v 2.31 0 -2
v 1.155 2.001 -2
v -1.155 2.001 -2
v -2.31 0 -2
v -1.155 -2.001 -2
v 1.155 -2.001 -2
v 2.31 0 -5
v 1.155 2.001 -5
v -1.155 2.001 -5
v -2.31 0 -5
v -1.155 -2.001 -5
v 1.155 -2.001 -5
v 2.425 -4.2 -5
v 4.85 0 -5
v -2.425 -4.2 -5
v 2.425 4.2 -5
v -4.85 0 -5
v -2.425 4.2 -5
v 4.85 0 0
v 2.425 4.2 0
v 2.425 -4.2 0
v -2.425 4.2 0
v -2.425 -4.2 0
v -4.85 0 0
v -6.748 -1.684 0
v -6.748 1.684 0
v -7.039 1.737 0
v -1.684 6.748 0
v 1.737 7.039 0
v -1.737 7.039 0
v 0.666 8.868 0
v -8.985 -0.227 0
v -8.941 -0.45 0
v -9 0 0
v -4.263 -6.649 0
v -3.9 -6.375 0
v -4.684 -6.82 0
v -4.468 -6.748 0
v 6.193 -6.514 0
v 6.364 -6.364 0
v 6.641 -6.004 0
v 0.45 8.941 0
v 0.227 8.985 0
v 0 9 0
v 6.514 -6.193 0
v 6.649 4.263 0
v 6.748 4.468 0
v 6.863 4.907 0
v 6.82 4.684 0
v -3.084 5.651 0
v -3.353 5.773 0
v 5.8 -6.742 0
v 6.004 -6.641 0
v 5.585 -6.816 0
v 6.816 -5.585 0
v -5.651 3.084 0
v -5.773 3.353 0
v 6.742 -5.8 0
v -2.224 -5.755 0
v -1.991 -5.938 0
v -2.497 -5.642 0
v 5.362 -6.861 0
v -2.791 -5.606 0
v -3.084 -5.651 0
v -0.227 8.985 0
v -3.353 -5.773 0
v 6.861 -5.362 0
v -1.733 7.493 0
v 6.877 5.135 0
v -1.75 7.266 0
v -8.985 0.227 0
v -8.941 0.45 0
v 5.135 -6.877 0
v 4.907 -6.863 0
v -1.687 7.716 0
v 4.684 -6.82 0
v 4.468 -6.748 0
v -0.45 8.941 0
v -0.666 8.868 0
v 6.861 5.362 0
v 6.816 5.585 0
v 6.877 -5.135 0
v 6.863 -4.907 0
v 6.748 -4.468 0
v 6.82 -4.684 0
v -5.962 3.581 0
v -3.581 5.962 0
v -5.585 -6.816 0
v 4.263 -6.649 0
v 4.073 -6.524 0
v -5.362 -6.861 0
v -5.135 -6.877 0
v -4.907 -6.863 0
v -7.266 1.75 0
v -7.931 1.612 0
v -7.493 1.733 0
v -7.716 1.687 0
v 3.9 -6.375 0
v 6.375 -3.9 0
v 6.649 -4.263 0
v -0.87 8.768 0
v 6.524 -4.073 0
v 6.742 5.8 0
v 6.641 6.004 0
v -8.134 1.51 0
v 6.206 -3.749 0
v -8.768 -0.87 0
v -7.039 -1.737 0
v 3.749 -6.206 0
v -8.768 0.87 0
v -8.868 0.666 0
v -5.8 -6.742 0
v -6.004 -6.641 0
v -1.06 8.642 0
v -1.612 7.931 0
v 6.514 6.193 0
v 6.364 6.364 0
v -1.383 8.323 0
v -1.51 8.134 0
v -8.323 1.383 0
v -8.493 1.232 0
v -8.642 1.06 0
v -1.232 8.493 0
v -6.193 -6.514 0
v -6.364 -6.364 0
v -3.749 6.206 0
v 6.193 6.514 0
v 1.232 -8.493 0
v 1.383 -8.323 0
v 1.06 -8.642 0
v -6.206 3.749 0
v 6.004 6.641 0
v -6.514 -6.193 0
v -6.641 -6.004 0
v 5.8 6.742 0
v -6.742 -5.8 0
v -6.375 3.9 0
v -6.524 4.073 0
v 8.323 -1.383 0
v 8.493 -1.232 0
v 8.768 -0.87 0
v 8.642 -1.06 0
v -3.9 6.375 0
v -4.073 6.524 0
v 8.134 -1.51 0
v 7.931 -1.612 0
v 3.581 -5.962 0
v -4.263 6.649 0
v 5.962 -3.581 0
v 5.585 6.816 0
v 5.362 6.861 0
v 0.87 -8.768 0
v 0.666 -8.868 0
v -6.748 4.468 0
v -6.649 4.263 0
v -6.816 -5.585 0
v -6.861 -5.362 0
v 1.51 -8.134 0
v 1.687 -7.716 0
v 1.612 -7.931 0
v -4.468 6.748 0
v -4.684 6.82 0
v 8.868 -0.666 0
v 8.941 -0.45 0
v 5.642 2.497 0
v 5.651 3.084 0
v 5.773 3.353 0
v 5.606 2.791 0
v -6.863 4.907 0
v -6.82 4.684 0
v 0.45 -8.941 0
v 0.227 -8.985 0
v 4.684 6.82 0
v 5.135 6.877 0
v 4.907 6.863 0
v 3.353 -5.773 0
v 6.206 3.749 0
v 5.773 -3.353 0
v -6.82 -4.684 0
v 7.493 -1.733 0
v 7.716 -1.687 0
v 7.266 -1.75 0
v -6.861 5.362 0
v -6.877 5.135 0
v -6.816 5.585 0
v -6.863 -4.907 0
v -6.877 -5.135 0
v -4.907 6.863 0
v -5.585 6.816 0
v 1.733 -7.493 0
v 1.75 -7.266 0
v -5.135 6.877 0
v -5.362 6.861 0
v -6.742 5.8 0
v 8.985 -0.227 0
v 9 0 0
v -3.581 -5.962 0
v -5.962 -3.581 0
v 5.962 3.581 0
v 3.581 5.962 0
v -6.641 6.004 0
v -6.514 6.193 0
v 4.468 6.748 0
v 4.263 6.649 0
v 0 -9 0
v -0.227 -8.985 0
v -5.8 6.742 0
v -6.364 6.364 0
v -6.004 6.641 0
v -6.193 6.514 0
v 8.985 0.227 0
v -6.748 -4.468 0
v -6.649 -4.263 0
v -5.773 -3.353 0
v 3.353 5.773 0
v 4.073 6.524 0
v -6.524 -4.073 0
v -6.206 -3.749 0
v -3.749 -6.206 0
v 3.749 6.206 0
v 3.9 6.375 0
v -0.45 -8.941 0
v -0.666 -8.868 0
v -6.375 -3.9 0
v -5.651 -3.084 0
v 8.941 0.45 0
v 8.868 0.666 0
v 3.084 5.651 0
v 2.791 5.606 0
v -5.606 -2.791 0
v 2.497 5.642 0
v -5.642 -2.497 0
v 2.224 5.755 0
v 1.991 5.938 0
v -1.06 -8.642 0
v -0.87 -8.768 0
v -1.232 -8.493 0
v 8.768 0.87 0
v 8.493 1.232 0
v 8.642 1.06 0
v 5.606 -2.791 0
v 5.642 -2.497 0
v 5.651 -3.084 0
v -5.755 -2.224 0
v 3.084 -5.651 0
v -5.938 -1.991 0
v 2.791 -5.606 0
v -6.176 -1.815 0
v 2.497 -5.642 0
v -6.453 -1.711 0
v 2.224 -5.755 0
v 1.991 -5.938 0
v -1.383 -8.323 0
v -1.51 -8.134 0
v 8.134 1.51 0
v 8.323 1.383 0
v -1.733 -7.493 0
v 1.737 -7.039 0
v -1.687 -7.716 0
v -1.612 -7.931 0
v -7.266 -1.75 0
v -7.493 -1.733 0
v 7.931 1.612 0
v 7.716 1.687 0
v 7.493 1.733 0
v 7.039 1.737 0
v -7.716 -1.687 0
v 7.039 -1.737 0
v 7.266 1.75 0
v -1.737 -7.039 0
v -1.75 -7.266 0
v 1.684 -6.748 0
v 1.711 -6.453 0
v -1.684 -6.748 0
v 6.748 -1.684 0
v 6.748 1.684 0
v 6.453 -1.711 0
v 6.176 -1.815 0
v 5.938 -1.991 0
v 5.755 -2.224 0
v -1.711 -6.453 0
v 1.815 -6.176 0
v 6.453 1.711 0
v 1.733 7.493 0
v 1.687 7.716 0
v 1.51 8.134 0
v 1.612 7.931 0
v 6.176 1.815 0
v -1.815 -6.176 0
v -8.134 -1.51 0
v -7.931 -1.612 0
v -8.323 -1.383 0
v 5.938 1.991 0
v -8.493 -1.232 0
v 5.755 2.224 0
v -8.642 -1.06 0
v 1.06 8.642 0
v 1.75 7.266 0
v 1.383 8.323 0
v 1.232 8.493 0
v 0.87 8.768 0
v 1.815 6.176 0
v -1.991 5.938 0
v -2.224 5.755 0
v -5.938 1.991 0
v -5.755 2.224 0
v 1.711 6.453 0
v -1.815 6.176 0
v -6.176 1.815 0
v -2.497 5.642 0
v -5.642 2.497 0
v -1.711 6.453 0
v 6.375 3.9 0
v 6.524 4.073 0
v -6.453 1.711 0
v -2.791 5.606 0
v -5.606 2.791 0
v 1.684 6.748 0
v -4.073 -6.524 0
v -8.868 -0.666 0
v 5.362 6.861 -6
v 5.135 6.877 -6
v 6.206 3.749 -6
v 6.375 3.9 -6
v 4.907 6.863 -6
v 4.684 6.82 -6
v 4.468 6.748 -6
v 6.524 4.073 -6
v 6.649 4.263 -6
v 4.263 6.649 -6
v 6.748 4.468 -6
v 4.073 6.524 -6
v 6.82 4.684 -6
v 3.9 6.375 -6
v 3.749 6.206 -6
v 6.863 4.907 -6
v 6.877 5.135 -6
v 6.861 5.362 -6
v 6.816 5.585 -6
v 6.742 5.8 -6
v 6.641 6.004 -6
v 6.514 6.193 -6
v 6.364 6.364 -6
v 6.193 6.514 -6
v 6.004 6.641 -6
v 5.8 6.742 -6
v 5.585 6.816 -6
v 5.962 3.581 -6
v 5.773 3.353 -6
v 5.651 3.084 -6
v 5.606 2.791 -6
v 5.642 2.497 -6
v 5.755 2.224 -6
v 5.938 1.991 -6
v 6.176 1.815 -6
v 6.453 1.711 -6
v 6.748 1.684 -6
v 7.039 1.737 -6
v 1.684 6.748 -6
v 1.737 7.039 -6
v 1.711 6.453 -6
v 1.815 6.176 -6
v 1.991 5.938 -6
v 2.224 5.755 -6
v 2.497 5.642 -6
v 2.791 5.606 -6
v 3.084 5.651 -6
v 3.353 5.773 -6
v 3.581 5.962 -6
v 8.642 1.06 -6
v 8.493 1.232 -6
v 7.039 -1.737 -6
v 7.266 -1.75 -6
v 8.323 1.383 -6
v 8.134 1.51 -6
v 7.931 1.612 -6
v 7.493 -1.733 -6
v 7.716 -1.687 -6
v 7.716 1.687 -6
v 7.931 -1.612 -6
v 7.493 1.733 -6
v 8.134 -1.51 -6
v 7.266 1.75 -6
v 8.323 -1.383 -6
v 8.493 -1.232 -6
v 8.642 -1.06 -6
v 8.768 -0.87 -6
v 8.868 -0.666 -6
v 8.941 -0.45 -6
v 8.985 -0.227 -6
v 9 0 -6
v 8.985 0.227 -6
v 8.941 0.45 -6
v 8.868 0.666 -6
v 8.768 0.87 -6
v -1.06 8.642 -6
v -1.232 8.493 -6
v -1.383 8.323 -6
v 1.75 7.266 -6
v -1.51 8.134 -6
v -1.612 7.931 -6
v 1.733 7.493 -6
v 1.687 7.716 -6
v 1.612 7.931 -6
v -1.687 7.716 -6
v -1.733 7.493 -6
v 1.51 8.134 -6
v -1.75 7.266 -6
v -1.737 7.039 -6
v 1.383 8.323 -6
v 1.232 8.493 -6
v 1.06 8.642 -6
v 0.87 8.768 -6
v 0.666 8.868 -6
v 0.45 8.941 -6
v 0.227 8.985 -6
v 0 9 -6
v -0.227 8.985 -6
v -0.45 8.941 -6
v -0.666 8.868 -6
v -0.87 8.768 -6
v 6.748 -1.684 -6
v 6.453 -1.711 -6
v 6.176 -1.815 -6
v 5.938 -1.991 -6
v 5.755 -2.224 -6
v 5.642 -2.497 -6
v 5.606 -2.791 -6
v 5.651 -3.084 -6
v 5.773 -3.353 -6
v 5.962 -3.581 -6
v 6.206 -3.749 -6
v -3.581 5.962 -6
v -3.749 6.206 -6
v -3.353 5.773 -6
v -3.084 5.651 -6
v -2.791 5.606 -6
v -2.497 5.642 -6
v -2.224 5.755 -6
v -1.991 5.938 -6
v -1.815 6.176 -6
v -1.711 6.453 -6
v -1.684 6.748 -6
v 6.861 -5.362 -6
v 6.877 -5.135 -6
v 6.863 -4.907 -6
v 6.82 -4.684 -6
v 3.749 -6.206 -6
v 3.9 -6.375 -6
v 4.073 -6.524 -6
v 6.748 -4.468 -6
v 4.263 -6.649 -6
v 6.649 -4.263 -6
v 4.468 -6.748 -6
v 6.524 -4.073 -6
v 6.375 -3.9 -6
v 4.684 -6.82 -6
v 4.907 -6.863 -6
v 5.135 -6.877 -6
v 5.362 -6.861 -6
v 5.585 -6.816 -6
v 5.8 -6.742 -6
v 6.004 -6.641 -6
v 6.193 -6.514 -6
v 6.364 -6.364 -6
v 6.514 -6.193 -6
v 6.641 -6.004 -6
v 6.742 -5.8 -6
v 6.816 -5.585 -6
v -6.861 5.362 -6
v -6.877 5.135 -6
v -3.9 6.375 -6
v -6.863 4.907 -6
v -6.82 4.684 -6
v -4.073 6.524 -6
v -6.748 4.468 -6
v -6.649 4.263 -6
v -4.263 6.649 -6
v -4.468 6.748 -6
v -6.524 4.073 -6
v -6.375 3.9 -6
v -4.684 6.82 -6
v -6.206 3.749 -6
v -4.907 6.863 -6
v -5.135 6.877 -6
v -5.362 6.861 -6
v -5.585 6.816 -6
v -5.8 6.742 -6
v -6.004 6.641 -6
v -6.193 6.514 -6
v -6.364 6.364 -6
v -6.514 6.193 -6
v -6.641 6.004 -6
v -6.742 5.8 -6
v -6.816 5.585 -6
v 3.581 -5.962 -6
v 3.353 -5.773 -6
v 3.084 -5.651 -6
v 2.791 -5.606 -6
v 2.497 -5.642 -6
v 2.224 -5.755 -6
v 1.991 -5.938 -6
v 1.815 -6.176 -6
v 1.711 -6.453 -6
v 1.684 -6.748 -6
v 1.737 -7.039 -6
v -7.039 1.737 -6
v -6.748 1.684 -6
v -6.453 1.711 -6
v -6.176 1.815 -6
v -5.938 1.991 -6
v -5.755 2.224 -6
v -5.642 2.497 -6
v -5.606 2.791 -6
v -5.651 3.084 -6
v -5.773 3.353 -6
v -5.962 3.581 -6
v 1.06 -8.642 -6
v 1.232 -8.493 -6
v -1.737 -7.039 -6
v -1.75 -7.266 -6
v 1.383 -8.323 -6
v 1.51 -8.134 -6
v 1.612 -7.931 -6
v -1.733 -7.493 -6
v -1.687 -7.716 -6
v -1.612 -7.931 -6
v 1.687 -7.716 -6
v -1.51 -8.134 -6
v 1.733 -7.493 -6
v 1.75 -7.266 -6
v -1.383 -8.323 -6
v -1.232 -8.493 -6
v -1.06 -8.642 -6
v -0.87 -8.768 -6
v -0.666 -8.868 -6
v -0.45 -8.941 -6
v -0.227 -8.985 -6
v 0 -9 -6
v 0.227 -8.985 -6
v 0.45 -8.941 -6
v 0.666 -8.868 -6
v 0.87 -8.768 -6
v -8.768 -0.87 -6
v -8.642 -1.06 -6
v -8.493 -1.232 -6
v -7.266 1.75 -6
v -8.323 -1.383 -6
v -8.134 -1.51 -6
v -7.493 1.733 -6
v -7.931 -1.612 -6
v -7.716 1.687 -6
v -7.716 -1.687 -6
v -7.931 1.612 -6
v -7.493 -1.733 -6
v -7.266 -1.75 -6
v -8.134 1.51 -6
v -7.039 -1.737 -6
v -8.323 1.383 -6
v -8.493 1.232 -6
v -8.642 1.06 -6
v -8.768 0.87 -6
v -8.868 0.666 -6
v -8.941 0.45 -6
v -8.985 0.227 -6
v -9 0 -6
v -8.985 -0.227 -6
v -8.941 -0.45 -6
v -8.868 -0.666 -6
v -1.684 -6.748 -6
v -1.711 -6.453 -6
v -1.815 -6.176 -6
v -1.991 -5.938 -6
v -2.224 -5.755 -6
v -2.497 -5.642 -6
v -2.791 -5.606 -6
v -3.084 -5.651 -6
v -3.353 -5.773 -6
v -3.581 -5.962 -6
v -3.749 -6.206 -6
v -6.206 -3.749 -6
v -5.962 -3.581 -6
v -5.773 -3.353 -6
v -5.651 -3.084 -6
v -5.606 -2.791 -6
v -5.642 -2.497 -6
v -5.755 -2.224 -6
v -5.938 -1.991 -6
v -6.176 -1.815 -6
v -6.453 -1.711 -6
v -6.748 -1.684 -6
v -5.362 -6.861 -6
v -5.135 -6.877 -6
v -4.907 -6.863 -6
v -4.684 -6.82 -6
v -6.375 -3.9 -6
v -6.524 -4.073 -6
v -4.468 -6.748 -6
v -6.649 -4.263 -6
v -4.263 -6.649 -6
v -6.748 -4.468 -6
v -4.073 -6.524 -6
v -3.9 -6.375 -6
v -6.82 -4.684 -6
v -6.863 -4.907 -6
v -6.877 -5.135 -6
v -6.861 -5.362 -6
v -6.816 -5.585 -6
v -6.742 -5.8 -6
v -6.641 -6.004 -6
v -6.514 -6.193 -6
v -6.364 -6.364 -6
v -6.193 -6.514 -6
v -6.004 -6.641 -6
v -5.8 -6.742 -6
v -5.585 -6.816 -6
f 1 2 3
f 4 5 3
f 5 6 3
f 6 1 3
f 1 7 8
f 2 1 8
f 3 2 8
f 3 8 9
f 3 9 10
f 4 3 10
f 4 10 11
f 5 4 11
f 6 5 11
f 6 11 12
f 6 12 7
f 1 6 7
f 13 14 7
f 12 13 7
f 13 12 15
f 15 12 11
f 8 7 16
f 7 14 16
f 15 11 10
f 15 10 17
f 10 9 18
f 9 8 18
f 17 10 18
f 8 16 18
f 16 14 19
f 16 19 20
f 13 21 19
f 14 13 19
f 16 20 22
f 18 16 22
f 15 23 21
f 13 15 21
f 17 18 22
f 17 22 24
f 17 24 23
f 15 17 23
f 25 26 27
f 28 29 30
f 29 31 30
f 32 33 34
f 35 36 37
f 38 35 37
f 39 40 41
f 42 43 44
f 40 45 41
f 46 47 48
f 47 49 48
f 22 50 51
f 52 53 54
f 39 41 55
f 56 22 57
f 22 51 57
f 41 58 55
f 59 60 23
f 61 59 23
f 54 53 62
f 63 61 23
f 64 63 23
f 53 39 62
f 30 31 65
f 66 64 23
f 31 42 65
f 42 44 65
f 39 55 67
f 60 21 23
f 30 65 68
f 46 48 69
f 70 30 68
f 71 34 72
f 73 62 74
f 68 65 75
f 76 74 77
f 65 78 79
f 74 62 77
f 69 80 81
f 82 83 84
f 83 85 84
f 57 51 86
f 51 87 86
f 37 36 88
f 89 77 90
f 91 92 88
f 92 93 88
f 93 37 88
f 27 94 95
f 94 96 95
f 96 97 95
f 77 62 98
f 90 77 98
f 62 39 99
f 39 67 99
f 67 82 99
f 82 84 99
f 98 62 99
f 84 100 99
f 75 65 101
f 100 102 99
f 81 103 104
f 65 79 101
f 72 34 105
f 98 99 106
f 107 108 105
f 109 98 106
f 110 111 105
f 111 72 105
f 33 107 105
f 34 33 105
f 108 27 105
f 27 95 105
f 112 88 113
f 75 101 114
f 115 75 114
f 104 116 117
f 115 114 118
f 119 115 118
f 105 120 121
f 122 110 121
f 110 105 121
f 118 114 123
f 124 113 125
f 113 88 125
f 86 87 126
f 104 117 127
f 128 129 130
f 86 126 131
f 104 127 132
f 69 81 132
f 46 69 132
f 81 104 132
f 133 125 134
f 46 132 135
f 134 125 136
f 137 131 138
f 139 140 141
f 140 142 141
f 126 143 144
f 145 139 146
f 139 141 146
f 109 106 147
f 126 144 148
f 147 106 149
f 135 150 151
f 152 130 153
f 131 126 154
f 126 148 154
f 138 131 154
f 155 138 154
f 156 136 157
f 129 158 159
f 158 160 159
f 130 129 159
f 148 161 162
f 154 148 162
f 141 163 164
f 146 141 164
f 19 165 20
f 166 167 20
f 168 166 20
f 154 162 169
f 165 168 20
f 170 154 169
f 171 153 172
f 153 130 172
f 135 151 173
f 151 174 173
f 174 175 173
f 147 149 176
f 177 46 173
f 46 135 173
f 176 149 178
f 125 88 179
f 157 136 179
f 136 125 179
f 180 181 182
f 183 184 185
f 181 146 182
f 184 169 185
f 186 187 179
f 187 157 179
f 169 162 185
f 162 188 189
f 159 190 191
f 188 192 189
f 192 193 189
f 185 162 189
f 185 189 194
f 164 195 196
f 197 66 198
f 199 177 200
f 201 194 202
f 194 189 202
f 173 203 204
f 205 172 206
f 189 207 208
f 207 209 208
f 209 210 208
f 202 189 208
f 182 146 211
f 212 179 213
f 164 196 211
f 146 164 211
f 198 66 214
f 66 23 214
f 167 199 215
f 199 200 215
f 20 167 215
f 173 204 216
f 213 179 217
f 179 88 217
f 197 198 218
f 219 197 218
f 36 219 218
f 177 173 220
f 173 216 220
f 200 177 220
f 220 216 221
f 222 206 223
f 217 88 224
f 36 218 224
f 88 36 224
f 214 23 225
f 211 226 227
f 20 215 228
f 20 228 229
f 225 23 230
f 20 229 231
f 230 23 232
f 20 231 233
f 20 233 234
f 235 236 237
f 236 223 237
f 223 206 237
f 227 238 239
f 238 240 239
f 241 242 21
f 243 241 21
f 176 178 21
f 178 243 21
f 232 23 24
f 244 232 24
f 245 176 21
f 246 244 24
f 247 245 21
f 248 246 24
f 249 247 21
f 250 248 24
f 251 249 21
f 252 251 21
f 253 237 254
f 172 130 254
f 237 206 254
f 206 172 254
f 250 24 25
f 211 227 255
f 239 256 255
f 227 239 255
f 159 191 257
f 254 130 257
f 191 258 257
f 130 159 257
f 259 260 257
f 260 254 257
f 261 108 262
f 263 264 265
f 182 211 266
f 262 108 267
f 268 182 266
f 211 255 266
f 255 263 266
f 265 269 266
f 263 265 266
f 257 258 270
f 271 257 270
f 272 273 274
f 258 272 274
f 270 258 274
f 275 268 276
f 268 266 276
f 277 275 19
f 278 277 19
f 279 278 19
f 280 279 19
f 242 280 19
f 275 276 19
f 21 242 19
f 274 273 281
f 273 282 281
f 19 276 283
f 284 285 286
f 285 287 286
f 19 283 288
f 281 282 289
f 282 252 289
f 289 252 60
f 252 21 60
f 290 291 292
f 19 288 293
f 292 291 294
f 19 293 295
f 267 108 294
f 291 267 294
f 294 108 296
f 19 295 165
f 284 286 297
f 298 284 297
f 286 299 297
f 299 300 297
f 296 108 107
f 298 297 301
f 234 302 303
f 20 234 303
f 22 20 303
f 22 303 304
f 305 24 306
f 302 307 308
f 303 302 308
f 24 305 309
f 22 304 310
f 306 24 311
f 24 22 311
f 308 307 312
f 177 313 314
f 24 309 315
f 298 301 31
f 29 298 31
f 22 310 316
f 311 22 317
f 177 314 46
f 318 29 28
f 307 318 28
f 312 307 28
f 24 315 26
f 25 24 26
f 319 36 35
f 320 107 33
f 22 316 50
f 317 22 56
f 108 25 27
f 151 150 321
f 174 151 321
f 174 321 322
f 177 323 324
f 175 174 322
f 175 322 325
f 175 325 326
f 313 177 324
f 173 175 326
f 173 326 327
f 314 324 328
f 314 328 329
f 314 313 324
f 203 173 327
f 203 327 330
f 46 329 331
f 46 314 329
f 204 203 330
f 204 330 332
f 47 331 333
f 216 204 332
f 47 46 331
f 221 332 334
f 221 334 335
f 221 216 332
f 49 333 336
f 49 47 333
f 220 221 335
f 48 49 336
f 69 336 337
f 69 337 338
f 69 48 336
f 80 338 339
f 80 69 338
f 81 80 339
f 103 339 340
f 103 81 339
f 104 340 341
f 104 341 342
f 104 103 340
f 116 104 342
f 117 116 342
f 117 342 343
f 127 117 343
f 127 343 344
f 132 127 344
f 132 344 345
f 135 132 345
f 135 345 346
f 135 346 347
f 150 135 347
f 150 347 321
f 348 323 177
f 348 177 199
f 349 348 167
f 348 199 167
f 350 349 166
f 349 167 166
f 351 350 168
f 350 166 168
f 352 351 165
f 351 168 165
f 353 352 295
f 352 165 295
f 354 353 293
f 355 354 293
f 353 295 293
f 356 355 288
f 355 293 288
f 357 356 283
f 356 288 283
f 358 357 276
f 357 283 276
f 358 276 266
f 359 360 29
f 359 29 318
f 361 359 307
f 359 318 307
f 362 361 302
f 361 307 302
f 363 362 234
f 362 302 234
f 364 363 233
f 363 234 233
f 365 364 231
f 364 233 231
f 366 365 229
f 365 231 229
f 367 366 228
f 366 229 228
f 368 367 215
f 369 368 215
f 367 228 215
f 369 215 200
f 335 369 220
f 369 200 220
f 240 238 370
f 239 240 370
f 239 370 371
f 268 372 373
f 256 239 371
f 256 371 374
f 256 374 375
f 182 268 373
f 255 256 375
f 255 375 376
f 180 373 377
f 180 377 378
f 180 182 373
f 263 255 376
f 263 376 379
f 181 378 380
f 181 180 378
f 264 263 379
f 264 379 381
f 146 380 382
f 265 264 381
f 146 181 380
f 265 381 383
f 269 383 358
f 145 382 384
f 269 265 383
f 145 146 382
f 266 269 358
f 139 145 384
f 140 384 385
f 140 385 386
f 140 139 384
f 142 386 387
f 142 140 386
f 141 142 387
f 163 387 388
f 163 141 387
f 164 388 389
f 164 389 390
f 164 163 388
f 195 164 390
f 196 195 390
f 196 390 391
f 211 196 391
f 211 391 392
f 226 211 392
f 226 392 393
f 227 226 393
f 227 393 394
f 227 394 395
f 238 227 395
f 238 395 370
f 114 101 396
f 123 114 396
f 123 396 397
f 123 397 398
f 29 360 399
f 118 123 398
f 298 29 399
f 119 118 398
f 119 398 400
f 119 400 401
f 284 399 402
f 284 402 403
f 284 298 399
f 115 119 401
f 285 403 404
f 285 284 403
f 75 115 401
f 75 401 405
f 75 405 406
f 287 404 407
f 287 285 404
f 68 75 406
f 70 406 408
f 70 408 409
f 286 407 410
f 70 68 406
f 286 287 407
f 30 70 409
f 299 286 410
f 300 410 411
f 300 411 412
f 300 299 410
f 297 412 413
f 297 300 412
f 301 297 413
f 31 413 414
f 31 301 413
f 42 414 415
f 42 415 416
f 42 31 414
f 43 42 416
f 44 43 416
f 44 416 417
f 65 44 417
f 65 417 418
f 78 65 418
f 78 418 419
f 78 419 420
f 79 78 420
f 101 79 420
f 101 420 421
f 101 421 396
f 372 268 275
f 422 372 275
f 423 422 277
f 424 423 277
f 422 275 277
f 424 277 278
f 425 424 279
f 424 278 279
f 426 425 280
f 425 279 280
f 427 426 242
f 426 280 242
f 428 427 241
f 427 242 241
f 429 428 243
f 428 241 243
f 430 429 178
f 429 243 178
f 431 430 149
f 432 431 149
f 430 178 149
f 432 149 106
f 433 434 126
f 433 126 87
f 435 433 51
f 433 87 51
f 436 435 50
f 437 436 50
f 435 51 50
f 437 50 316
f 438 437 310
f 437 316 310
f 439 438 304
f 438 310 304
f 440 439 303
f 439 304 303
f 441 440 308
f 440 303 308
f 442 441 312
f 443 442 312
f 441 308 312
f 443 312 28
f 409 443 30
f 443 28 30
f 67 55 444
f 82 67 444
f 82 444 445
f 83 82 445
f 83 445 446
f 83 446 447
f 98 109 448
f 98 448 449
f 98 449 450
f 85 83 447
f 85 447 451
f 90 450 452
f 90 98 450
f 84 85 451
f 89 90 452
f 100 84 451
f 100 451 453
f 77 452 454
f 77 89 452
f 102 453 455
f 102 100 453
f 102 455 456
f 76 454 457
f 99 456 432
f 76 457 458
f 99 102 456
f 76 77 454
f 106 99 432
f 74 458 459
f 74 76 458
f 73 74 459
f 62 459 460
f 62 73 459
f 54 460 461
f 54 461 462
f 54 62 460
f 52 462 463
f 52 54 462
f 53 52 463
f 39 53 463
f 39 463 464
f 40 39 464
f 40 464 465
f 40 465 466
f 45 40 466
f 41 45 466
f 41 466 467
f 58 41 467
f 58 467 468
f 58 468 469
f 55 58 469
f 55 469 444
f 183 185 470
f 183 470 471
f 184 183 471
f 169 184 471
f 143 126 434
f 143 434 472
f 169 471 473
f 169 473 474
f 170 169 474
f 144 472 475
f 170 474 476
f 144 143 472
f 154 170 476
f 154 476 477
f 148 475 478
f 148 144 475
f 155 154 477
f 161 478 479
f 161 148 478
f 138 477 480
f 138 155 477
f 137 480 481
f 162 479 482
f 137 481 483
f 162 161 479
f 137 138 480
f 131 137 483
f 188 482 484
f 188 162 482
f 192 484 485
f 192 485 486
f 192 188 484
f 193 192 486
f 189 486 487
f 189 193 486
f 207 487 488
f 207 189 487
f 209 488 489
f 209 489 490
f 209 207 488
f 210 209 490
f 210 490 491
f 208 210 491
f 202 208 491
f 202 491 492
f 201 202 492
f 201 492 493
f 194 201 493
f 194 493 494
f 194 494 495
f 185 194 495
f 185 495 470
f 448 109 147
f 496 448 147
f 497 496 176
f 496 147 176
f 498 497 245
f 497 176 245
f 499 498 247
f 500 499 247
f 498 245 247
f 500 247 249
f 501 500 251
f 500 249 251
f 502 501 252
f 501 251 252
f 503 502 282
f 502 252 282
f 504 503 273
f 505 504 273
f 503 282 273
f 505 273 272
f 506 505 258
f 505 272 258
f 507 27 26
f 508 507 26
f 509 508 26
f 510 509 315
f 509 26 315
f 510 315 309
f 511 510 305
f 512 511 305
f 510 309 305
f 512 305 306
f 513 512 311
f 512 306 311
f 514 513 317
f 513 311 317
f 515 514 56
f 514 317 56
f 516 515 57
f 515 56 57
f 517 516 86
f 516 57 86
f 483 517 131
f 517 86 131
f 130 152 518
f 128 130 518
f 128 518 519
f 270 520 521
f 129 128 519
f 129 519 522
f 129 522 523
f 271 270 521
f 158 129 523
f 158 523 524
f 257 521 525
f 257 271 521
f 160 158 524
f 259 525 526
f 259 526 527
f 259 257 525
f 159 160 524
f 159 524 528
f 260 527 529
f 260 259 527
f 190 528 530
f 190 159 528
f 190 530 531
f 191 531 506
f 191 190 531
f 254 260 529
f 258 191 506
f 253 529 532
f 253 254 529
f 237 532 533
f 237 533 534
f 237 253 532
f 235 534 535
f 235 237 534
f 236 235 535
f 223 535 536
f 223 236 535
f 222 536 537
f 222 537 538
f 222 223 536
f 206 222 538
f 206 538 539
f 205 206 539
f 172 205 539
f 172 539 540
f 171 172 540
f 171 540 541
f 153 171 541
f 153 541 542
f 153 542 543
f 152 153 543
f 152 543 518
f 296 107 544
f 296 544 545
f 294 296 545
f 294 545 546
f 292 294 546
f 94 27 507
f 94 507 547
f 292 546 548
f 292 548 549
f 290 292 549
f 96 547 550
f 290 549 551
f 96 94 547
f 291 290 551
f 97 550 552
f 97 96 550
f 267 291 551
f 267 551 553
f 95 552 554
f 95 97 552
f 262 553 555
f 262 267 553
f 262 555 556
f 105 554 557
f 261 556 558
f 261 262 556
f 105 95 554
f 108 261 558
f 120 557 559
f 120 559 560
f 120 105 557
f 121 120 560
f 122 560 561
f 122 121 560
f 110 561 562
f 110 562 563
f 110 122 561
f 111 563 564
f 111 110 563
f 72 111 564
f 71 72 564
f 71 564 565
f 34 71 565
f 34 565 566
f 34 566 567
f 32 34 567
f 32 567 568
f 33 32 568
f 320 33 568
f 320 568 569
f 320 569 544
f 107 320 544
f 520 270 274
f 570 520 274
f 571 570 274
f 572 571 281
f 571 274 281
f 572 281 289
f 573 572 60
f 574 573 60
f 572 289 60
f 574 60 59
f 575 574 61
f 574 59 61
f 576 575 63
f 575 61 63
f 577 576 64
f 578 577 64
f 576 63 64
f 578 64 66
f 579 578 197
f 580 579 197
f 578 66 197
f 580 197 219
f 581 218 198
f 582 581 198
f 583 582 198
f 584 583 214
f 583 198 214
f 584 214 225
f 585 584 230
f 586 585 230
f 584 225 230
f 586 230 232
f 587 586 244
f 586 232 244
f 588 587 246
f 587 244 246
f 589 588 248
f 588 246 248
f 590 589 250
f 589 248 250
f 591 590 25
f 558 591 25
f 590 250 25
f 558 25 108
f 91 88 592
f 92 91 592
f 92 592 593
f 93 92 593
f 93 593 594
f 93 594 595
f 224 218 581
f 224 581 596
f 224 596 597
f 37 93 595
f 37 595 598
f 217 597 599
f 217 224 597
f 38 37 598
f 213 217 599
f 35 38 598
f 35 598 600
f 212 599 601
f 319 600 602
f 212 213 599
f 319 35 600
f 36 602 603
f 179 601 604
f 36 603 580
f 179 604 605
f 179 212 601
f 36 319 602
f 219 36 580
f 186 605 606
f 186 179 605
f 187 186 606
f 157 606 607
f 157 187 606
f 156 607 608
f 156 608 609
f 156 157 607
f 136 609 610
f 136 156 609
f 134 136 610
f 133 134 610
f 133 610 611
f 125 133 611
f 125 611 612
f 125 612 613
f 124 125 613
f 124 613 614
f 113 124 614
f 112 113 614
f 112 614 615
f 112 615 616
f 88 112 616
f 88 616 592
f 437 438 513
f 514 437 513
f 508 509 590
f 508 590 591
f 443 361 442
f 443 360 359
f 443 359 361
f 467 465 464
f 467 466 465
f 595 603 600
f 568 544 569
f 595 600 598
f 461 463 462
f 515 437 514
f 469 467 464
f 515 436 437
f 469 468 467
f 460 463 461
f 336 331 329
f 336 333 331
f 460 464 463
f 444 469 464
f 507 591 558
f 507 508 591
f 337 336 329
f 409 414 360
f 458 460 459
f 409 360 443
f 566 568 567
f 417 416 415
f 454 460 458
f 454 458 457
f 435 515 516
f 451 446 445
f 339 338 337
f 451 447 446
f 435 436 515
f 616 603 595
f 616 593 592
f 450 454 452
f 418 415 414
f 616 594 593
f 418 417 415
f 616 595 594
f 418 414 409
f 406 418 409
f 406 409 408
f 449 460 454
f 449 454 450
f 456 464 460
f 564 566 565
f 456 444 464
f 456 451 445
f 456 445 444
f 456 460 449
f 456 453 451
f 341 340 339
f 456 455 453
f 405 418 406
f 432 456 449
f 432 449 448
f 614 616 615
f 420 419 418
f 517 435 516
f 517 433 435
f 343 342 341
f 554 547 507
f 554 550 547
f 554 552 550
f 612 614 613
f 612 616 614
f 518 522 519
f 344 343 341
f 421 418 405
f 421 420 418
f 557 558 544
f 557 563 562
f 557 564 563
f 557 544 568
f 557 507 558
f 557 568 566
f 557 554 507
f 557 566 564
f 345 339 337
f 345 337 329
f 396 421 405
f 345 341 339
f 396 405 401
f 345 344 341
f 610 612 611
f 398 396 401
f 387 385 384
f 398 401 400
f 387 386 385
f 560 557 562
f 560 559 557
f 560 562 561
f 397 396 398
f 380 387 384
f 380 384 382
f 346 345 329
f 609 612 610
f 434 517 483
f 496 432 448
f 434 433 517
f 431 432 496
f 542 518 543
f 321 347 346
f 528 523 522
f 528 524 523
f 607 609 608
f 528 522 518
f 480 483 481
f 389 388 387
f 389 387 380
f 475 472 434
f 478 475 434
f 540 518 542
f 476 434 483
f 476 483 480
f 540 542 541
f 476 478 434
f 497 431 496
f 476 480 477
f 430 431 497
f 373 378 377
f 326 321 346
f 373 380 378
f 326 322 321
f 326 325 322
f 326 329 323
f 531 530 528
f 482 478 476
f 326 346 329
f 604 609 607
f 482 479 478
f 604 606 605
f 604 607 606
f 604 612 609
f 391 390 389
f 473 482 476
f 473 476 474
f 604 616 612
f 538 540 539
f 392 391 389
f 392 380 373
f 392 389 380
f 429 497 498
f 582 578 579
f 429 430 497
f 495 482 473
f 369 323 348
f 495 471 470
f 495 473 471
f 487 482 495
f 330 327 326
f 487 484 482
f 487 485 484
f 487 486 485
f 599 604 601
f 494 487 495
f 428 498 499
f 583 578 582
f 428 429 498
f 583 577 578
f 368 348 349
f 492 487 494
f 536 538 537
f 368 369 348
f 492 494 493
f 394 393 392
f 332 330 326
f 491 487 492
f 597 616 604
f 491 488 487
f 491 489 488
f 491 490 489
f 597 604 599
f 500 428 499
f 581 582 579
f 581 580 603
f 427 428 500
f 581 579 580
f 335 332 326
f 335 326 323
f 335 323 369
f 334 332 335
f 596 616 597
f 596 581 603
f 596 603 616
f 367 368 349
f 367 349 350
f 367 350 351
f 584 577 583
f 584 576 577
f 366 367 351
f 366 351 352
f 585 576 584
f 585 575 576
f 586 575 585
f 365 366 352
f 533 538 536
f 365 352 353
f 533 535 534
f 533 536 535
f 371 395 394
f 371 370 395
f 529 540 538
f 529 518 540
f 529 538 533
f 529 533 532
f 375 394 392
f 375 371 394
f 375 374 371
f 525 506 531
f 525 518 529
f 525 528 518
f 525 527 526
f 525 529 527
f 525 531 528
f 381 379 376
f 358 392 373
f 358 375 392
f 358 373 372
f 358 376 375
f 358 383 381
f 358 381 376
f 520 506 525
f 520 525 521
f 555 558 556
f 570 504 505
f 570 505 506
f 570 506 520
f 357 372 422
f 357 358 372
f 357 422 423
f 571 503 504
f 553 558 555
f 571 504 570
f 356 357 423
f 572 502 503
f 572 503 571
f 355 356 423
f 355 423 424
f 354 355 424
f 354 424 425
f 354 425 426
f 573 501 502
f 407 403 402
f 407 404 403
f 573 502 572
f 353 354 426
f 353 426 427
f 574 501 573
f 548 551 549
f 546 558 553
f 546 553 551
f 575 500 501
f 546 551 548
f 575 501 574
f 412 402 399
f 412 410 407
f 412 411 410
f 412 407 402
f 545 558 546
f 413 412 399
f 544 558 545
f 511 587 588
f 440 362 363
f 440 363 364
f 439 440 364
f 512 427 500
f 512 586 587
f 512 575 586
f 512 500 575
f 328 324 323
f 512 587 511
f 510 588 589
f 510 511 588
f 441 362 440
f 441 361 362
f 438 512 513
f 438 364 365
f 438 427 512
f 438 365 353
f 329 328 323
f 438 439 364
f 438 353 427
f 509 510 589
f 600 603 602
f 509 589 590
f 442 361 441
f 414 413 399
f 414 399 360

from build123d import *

# Parameters (mm, degrees)
EXTRUDE001_DEPTH = 3
EXTRUDE_DEPTH    = 5
PAD_DEPTH        = 6


with BuildPart() as extrude001:
    # RegularPolygon001 → Extrude001 (new body)
    with BuildSketch(Plane(origin=(0, 0, -2), x_dir=(0, 1, 0), z_dir=(0, 0, 1))):
        Polygon((0, -2.31), (2.000519, -1.155), (2.000519, 1.155), (0, 2.31), (-2.000519, 1.155), (-2.000519, -1.155), align=None)
    extrude(amount=-EXTRUDE001_DEPTH)


with BuildPart() as extrude_body:
    # RegularPolygon → Extrude (new body)
    with BuildSketch(Plane(origin=(0, 0, 0), x_dir=(0, 1, 0), z_dir=(0, 0, 1))):
        Polygon((0, -4.85), (4.200223, -2.425), (4.200223, 2.425), (0, 4.85), (-4.200223, 2.425), (-4.200223, -2.425), align=None)
    extrude(amount=-EXTRUDE_DEPTH)


with BuildPart() as fusion:
    # Sketch → Pad (new body)
    with BuildSketch(Plane.XY):
        with BuildLine():
            ThreePointArc((1.737208, 7.038793), (0, 9), (-1.737208, 7.038793))
            ThreePointArc((-3.748787, 6.20557), (-2.356657, 5.689474), (-1.737208, 7.038793))
            ThreePointArc((-3.748787, 6.20557), (-6.363961, 6.363961), (-6.20557, 3.748787))
            ThreePointArc((-7.038793, 1.737208), (-5.689474, 2.356657), (-6.20557, 3.748787))
            ThreePointArc((-7.038793, 1.737208), (-9, 0), (-7.038793, -1.737208))
            ThreePointArc((-6.20557, -3.748787), (-5.689474, -2.356657), (-7.038793, -1.737208))
            ThreePointArc((-6.20557, -3.748787), (-6.363961, -6.363961), (-3.748787, -6.20557))
            ThreePointArc((-1.737208, -7.038793), (-2.356657, -5.689474), (-3.748787, -6.20557))
            ThreePointArc((-1.737208, -7.038793), (0, -9), (1.737208, -7.038793))
            ThreePointArc((3.748787, -6.20557), (2.356657, -5.689474), (1.737208, -7.038793))
            ThreePointArc((3.748787, -6.20557), (6.363961, -6.363961), (6.20557, -3.748787))
            ThreePointArc((7.038793, -1.737208), (5.689474, -2.356657), (6.20557, -3.748787))
            ThreePointArc((7.038793, -1.737208), (9, 0), (7.038793, 1.737208))
            ThreePointArc((6.20557, 3.748787), (5.689474, 2.356657), (7.038793, 1.737208))
            ThreePointArc((6.20557, 3.748787), (6.363961, 6.363961), (3.748787, 6.20557))
            ThreePointArc((1.737208, 7.038793), (2.356657, 5.689474), (3.748787, 6.20557))
        make_face()
    extrude(amount=-PAD_DEPTH)

    # Cut: cut Extrude body
    add(extrude_body.part, mode=Mode.SUBTRACT)

    # Fusion: union Extrude001
    add(extrude001.part)


solid = fusion.part
